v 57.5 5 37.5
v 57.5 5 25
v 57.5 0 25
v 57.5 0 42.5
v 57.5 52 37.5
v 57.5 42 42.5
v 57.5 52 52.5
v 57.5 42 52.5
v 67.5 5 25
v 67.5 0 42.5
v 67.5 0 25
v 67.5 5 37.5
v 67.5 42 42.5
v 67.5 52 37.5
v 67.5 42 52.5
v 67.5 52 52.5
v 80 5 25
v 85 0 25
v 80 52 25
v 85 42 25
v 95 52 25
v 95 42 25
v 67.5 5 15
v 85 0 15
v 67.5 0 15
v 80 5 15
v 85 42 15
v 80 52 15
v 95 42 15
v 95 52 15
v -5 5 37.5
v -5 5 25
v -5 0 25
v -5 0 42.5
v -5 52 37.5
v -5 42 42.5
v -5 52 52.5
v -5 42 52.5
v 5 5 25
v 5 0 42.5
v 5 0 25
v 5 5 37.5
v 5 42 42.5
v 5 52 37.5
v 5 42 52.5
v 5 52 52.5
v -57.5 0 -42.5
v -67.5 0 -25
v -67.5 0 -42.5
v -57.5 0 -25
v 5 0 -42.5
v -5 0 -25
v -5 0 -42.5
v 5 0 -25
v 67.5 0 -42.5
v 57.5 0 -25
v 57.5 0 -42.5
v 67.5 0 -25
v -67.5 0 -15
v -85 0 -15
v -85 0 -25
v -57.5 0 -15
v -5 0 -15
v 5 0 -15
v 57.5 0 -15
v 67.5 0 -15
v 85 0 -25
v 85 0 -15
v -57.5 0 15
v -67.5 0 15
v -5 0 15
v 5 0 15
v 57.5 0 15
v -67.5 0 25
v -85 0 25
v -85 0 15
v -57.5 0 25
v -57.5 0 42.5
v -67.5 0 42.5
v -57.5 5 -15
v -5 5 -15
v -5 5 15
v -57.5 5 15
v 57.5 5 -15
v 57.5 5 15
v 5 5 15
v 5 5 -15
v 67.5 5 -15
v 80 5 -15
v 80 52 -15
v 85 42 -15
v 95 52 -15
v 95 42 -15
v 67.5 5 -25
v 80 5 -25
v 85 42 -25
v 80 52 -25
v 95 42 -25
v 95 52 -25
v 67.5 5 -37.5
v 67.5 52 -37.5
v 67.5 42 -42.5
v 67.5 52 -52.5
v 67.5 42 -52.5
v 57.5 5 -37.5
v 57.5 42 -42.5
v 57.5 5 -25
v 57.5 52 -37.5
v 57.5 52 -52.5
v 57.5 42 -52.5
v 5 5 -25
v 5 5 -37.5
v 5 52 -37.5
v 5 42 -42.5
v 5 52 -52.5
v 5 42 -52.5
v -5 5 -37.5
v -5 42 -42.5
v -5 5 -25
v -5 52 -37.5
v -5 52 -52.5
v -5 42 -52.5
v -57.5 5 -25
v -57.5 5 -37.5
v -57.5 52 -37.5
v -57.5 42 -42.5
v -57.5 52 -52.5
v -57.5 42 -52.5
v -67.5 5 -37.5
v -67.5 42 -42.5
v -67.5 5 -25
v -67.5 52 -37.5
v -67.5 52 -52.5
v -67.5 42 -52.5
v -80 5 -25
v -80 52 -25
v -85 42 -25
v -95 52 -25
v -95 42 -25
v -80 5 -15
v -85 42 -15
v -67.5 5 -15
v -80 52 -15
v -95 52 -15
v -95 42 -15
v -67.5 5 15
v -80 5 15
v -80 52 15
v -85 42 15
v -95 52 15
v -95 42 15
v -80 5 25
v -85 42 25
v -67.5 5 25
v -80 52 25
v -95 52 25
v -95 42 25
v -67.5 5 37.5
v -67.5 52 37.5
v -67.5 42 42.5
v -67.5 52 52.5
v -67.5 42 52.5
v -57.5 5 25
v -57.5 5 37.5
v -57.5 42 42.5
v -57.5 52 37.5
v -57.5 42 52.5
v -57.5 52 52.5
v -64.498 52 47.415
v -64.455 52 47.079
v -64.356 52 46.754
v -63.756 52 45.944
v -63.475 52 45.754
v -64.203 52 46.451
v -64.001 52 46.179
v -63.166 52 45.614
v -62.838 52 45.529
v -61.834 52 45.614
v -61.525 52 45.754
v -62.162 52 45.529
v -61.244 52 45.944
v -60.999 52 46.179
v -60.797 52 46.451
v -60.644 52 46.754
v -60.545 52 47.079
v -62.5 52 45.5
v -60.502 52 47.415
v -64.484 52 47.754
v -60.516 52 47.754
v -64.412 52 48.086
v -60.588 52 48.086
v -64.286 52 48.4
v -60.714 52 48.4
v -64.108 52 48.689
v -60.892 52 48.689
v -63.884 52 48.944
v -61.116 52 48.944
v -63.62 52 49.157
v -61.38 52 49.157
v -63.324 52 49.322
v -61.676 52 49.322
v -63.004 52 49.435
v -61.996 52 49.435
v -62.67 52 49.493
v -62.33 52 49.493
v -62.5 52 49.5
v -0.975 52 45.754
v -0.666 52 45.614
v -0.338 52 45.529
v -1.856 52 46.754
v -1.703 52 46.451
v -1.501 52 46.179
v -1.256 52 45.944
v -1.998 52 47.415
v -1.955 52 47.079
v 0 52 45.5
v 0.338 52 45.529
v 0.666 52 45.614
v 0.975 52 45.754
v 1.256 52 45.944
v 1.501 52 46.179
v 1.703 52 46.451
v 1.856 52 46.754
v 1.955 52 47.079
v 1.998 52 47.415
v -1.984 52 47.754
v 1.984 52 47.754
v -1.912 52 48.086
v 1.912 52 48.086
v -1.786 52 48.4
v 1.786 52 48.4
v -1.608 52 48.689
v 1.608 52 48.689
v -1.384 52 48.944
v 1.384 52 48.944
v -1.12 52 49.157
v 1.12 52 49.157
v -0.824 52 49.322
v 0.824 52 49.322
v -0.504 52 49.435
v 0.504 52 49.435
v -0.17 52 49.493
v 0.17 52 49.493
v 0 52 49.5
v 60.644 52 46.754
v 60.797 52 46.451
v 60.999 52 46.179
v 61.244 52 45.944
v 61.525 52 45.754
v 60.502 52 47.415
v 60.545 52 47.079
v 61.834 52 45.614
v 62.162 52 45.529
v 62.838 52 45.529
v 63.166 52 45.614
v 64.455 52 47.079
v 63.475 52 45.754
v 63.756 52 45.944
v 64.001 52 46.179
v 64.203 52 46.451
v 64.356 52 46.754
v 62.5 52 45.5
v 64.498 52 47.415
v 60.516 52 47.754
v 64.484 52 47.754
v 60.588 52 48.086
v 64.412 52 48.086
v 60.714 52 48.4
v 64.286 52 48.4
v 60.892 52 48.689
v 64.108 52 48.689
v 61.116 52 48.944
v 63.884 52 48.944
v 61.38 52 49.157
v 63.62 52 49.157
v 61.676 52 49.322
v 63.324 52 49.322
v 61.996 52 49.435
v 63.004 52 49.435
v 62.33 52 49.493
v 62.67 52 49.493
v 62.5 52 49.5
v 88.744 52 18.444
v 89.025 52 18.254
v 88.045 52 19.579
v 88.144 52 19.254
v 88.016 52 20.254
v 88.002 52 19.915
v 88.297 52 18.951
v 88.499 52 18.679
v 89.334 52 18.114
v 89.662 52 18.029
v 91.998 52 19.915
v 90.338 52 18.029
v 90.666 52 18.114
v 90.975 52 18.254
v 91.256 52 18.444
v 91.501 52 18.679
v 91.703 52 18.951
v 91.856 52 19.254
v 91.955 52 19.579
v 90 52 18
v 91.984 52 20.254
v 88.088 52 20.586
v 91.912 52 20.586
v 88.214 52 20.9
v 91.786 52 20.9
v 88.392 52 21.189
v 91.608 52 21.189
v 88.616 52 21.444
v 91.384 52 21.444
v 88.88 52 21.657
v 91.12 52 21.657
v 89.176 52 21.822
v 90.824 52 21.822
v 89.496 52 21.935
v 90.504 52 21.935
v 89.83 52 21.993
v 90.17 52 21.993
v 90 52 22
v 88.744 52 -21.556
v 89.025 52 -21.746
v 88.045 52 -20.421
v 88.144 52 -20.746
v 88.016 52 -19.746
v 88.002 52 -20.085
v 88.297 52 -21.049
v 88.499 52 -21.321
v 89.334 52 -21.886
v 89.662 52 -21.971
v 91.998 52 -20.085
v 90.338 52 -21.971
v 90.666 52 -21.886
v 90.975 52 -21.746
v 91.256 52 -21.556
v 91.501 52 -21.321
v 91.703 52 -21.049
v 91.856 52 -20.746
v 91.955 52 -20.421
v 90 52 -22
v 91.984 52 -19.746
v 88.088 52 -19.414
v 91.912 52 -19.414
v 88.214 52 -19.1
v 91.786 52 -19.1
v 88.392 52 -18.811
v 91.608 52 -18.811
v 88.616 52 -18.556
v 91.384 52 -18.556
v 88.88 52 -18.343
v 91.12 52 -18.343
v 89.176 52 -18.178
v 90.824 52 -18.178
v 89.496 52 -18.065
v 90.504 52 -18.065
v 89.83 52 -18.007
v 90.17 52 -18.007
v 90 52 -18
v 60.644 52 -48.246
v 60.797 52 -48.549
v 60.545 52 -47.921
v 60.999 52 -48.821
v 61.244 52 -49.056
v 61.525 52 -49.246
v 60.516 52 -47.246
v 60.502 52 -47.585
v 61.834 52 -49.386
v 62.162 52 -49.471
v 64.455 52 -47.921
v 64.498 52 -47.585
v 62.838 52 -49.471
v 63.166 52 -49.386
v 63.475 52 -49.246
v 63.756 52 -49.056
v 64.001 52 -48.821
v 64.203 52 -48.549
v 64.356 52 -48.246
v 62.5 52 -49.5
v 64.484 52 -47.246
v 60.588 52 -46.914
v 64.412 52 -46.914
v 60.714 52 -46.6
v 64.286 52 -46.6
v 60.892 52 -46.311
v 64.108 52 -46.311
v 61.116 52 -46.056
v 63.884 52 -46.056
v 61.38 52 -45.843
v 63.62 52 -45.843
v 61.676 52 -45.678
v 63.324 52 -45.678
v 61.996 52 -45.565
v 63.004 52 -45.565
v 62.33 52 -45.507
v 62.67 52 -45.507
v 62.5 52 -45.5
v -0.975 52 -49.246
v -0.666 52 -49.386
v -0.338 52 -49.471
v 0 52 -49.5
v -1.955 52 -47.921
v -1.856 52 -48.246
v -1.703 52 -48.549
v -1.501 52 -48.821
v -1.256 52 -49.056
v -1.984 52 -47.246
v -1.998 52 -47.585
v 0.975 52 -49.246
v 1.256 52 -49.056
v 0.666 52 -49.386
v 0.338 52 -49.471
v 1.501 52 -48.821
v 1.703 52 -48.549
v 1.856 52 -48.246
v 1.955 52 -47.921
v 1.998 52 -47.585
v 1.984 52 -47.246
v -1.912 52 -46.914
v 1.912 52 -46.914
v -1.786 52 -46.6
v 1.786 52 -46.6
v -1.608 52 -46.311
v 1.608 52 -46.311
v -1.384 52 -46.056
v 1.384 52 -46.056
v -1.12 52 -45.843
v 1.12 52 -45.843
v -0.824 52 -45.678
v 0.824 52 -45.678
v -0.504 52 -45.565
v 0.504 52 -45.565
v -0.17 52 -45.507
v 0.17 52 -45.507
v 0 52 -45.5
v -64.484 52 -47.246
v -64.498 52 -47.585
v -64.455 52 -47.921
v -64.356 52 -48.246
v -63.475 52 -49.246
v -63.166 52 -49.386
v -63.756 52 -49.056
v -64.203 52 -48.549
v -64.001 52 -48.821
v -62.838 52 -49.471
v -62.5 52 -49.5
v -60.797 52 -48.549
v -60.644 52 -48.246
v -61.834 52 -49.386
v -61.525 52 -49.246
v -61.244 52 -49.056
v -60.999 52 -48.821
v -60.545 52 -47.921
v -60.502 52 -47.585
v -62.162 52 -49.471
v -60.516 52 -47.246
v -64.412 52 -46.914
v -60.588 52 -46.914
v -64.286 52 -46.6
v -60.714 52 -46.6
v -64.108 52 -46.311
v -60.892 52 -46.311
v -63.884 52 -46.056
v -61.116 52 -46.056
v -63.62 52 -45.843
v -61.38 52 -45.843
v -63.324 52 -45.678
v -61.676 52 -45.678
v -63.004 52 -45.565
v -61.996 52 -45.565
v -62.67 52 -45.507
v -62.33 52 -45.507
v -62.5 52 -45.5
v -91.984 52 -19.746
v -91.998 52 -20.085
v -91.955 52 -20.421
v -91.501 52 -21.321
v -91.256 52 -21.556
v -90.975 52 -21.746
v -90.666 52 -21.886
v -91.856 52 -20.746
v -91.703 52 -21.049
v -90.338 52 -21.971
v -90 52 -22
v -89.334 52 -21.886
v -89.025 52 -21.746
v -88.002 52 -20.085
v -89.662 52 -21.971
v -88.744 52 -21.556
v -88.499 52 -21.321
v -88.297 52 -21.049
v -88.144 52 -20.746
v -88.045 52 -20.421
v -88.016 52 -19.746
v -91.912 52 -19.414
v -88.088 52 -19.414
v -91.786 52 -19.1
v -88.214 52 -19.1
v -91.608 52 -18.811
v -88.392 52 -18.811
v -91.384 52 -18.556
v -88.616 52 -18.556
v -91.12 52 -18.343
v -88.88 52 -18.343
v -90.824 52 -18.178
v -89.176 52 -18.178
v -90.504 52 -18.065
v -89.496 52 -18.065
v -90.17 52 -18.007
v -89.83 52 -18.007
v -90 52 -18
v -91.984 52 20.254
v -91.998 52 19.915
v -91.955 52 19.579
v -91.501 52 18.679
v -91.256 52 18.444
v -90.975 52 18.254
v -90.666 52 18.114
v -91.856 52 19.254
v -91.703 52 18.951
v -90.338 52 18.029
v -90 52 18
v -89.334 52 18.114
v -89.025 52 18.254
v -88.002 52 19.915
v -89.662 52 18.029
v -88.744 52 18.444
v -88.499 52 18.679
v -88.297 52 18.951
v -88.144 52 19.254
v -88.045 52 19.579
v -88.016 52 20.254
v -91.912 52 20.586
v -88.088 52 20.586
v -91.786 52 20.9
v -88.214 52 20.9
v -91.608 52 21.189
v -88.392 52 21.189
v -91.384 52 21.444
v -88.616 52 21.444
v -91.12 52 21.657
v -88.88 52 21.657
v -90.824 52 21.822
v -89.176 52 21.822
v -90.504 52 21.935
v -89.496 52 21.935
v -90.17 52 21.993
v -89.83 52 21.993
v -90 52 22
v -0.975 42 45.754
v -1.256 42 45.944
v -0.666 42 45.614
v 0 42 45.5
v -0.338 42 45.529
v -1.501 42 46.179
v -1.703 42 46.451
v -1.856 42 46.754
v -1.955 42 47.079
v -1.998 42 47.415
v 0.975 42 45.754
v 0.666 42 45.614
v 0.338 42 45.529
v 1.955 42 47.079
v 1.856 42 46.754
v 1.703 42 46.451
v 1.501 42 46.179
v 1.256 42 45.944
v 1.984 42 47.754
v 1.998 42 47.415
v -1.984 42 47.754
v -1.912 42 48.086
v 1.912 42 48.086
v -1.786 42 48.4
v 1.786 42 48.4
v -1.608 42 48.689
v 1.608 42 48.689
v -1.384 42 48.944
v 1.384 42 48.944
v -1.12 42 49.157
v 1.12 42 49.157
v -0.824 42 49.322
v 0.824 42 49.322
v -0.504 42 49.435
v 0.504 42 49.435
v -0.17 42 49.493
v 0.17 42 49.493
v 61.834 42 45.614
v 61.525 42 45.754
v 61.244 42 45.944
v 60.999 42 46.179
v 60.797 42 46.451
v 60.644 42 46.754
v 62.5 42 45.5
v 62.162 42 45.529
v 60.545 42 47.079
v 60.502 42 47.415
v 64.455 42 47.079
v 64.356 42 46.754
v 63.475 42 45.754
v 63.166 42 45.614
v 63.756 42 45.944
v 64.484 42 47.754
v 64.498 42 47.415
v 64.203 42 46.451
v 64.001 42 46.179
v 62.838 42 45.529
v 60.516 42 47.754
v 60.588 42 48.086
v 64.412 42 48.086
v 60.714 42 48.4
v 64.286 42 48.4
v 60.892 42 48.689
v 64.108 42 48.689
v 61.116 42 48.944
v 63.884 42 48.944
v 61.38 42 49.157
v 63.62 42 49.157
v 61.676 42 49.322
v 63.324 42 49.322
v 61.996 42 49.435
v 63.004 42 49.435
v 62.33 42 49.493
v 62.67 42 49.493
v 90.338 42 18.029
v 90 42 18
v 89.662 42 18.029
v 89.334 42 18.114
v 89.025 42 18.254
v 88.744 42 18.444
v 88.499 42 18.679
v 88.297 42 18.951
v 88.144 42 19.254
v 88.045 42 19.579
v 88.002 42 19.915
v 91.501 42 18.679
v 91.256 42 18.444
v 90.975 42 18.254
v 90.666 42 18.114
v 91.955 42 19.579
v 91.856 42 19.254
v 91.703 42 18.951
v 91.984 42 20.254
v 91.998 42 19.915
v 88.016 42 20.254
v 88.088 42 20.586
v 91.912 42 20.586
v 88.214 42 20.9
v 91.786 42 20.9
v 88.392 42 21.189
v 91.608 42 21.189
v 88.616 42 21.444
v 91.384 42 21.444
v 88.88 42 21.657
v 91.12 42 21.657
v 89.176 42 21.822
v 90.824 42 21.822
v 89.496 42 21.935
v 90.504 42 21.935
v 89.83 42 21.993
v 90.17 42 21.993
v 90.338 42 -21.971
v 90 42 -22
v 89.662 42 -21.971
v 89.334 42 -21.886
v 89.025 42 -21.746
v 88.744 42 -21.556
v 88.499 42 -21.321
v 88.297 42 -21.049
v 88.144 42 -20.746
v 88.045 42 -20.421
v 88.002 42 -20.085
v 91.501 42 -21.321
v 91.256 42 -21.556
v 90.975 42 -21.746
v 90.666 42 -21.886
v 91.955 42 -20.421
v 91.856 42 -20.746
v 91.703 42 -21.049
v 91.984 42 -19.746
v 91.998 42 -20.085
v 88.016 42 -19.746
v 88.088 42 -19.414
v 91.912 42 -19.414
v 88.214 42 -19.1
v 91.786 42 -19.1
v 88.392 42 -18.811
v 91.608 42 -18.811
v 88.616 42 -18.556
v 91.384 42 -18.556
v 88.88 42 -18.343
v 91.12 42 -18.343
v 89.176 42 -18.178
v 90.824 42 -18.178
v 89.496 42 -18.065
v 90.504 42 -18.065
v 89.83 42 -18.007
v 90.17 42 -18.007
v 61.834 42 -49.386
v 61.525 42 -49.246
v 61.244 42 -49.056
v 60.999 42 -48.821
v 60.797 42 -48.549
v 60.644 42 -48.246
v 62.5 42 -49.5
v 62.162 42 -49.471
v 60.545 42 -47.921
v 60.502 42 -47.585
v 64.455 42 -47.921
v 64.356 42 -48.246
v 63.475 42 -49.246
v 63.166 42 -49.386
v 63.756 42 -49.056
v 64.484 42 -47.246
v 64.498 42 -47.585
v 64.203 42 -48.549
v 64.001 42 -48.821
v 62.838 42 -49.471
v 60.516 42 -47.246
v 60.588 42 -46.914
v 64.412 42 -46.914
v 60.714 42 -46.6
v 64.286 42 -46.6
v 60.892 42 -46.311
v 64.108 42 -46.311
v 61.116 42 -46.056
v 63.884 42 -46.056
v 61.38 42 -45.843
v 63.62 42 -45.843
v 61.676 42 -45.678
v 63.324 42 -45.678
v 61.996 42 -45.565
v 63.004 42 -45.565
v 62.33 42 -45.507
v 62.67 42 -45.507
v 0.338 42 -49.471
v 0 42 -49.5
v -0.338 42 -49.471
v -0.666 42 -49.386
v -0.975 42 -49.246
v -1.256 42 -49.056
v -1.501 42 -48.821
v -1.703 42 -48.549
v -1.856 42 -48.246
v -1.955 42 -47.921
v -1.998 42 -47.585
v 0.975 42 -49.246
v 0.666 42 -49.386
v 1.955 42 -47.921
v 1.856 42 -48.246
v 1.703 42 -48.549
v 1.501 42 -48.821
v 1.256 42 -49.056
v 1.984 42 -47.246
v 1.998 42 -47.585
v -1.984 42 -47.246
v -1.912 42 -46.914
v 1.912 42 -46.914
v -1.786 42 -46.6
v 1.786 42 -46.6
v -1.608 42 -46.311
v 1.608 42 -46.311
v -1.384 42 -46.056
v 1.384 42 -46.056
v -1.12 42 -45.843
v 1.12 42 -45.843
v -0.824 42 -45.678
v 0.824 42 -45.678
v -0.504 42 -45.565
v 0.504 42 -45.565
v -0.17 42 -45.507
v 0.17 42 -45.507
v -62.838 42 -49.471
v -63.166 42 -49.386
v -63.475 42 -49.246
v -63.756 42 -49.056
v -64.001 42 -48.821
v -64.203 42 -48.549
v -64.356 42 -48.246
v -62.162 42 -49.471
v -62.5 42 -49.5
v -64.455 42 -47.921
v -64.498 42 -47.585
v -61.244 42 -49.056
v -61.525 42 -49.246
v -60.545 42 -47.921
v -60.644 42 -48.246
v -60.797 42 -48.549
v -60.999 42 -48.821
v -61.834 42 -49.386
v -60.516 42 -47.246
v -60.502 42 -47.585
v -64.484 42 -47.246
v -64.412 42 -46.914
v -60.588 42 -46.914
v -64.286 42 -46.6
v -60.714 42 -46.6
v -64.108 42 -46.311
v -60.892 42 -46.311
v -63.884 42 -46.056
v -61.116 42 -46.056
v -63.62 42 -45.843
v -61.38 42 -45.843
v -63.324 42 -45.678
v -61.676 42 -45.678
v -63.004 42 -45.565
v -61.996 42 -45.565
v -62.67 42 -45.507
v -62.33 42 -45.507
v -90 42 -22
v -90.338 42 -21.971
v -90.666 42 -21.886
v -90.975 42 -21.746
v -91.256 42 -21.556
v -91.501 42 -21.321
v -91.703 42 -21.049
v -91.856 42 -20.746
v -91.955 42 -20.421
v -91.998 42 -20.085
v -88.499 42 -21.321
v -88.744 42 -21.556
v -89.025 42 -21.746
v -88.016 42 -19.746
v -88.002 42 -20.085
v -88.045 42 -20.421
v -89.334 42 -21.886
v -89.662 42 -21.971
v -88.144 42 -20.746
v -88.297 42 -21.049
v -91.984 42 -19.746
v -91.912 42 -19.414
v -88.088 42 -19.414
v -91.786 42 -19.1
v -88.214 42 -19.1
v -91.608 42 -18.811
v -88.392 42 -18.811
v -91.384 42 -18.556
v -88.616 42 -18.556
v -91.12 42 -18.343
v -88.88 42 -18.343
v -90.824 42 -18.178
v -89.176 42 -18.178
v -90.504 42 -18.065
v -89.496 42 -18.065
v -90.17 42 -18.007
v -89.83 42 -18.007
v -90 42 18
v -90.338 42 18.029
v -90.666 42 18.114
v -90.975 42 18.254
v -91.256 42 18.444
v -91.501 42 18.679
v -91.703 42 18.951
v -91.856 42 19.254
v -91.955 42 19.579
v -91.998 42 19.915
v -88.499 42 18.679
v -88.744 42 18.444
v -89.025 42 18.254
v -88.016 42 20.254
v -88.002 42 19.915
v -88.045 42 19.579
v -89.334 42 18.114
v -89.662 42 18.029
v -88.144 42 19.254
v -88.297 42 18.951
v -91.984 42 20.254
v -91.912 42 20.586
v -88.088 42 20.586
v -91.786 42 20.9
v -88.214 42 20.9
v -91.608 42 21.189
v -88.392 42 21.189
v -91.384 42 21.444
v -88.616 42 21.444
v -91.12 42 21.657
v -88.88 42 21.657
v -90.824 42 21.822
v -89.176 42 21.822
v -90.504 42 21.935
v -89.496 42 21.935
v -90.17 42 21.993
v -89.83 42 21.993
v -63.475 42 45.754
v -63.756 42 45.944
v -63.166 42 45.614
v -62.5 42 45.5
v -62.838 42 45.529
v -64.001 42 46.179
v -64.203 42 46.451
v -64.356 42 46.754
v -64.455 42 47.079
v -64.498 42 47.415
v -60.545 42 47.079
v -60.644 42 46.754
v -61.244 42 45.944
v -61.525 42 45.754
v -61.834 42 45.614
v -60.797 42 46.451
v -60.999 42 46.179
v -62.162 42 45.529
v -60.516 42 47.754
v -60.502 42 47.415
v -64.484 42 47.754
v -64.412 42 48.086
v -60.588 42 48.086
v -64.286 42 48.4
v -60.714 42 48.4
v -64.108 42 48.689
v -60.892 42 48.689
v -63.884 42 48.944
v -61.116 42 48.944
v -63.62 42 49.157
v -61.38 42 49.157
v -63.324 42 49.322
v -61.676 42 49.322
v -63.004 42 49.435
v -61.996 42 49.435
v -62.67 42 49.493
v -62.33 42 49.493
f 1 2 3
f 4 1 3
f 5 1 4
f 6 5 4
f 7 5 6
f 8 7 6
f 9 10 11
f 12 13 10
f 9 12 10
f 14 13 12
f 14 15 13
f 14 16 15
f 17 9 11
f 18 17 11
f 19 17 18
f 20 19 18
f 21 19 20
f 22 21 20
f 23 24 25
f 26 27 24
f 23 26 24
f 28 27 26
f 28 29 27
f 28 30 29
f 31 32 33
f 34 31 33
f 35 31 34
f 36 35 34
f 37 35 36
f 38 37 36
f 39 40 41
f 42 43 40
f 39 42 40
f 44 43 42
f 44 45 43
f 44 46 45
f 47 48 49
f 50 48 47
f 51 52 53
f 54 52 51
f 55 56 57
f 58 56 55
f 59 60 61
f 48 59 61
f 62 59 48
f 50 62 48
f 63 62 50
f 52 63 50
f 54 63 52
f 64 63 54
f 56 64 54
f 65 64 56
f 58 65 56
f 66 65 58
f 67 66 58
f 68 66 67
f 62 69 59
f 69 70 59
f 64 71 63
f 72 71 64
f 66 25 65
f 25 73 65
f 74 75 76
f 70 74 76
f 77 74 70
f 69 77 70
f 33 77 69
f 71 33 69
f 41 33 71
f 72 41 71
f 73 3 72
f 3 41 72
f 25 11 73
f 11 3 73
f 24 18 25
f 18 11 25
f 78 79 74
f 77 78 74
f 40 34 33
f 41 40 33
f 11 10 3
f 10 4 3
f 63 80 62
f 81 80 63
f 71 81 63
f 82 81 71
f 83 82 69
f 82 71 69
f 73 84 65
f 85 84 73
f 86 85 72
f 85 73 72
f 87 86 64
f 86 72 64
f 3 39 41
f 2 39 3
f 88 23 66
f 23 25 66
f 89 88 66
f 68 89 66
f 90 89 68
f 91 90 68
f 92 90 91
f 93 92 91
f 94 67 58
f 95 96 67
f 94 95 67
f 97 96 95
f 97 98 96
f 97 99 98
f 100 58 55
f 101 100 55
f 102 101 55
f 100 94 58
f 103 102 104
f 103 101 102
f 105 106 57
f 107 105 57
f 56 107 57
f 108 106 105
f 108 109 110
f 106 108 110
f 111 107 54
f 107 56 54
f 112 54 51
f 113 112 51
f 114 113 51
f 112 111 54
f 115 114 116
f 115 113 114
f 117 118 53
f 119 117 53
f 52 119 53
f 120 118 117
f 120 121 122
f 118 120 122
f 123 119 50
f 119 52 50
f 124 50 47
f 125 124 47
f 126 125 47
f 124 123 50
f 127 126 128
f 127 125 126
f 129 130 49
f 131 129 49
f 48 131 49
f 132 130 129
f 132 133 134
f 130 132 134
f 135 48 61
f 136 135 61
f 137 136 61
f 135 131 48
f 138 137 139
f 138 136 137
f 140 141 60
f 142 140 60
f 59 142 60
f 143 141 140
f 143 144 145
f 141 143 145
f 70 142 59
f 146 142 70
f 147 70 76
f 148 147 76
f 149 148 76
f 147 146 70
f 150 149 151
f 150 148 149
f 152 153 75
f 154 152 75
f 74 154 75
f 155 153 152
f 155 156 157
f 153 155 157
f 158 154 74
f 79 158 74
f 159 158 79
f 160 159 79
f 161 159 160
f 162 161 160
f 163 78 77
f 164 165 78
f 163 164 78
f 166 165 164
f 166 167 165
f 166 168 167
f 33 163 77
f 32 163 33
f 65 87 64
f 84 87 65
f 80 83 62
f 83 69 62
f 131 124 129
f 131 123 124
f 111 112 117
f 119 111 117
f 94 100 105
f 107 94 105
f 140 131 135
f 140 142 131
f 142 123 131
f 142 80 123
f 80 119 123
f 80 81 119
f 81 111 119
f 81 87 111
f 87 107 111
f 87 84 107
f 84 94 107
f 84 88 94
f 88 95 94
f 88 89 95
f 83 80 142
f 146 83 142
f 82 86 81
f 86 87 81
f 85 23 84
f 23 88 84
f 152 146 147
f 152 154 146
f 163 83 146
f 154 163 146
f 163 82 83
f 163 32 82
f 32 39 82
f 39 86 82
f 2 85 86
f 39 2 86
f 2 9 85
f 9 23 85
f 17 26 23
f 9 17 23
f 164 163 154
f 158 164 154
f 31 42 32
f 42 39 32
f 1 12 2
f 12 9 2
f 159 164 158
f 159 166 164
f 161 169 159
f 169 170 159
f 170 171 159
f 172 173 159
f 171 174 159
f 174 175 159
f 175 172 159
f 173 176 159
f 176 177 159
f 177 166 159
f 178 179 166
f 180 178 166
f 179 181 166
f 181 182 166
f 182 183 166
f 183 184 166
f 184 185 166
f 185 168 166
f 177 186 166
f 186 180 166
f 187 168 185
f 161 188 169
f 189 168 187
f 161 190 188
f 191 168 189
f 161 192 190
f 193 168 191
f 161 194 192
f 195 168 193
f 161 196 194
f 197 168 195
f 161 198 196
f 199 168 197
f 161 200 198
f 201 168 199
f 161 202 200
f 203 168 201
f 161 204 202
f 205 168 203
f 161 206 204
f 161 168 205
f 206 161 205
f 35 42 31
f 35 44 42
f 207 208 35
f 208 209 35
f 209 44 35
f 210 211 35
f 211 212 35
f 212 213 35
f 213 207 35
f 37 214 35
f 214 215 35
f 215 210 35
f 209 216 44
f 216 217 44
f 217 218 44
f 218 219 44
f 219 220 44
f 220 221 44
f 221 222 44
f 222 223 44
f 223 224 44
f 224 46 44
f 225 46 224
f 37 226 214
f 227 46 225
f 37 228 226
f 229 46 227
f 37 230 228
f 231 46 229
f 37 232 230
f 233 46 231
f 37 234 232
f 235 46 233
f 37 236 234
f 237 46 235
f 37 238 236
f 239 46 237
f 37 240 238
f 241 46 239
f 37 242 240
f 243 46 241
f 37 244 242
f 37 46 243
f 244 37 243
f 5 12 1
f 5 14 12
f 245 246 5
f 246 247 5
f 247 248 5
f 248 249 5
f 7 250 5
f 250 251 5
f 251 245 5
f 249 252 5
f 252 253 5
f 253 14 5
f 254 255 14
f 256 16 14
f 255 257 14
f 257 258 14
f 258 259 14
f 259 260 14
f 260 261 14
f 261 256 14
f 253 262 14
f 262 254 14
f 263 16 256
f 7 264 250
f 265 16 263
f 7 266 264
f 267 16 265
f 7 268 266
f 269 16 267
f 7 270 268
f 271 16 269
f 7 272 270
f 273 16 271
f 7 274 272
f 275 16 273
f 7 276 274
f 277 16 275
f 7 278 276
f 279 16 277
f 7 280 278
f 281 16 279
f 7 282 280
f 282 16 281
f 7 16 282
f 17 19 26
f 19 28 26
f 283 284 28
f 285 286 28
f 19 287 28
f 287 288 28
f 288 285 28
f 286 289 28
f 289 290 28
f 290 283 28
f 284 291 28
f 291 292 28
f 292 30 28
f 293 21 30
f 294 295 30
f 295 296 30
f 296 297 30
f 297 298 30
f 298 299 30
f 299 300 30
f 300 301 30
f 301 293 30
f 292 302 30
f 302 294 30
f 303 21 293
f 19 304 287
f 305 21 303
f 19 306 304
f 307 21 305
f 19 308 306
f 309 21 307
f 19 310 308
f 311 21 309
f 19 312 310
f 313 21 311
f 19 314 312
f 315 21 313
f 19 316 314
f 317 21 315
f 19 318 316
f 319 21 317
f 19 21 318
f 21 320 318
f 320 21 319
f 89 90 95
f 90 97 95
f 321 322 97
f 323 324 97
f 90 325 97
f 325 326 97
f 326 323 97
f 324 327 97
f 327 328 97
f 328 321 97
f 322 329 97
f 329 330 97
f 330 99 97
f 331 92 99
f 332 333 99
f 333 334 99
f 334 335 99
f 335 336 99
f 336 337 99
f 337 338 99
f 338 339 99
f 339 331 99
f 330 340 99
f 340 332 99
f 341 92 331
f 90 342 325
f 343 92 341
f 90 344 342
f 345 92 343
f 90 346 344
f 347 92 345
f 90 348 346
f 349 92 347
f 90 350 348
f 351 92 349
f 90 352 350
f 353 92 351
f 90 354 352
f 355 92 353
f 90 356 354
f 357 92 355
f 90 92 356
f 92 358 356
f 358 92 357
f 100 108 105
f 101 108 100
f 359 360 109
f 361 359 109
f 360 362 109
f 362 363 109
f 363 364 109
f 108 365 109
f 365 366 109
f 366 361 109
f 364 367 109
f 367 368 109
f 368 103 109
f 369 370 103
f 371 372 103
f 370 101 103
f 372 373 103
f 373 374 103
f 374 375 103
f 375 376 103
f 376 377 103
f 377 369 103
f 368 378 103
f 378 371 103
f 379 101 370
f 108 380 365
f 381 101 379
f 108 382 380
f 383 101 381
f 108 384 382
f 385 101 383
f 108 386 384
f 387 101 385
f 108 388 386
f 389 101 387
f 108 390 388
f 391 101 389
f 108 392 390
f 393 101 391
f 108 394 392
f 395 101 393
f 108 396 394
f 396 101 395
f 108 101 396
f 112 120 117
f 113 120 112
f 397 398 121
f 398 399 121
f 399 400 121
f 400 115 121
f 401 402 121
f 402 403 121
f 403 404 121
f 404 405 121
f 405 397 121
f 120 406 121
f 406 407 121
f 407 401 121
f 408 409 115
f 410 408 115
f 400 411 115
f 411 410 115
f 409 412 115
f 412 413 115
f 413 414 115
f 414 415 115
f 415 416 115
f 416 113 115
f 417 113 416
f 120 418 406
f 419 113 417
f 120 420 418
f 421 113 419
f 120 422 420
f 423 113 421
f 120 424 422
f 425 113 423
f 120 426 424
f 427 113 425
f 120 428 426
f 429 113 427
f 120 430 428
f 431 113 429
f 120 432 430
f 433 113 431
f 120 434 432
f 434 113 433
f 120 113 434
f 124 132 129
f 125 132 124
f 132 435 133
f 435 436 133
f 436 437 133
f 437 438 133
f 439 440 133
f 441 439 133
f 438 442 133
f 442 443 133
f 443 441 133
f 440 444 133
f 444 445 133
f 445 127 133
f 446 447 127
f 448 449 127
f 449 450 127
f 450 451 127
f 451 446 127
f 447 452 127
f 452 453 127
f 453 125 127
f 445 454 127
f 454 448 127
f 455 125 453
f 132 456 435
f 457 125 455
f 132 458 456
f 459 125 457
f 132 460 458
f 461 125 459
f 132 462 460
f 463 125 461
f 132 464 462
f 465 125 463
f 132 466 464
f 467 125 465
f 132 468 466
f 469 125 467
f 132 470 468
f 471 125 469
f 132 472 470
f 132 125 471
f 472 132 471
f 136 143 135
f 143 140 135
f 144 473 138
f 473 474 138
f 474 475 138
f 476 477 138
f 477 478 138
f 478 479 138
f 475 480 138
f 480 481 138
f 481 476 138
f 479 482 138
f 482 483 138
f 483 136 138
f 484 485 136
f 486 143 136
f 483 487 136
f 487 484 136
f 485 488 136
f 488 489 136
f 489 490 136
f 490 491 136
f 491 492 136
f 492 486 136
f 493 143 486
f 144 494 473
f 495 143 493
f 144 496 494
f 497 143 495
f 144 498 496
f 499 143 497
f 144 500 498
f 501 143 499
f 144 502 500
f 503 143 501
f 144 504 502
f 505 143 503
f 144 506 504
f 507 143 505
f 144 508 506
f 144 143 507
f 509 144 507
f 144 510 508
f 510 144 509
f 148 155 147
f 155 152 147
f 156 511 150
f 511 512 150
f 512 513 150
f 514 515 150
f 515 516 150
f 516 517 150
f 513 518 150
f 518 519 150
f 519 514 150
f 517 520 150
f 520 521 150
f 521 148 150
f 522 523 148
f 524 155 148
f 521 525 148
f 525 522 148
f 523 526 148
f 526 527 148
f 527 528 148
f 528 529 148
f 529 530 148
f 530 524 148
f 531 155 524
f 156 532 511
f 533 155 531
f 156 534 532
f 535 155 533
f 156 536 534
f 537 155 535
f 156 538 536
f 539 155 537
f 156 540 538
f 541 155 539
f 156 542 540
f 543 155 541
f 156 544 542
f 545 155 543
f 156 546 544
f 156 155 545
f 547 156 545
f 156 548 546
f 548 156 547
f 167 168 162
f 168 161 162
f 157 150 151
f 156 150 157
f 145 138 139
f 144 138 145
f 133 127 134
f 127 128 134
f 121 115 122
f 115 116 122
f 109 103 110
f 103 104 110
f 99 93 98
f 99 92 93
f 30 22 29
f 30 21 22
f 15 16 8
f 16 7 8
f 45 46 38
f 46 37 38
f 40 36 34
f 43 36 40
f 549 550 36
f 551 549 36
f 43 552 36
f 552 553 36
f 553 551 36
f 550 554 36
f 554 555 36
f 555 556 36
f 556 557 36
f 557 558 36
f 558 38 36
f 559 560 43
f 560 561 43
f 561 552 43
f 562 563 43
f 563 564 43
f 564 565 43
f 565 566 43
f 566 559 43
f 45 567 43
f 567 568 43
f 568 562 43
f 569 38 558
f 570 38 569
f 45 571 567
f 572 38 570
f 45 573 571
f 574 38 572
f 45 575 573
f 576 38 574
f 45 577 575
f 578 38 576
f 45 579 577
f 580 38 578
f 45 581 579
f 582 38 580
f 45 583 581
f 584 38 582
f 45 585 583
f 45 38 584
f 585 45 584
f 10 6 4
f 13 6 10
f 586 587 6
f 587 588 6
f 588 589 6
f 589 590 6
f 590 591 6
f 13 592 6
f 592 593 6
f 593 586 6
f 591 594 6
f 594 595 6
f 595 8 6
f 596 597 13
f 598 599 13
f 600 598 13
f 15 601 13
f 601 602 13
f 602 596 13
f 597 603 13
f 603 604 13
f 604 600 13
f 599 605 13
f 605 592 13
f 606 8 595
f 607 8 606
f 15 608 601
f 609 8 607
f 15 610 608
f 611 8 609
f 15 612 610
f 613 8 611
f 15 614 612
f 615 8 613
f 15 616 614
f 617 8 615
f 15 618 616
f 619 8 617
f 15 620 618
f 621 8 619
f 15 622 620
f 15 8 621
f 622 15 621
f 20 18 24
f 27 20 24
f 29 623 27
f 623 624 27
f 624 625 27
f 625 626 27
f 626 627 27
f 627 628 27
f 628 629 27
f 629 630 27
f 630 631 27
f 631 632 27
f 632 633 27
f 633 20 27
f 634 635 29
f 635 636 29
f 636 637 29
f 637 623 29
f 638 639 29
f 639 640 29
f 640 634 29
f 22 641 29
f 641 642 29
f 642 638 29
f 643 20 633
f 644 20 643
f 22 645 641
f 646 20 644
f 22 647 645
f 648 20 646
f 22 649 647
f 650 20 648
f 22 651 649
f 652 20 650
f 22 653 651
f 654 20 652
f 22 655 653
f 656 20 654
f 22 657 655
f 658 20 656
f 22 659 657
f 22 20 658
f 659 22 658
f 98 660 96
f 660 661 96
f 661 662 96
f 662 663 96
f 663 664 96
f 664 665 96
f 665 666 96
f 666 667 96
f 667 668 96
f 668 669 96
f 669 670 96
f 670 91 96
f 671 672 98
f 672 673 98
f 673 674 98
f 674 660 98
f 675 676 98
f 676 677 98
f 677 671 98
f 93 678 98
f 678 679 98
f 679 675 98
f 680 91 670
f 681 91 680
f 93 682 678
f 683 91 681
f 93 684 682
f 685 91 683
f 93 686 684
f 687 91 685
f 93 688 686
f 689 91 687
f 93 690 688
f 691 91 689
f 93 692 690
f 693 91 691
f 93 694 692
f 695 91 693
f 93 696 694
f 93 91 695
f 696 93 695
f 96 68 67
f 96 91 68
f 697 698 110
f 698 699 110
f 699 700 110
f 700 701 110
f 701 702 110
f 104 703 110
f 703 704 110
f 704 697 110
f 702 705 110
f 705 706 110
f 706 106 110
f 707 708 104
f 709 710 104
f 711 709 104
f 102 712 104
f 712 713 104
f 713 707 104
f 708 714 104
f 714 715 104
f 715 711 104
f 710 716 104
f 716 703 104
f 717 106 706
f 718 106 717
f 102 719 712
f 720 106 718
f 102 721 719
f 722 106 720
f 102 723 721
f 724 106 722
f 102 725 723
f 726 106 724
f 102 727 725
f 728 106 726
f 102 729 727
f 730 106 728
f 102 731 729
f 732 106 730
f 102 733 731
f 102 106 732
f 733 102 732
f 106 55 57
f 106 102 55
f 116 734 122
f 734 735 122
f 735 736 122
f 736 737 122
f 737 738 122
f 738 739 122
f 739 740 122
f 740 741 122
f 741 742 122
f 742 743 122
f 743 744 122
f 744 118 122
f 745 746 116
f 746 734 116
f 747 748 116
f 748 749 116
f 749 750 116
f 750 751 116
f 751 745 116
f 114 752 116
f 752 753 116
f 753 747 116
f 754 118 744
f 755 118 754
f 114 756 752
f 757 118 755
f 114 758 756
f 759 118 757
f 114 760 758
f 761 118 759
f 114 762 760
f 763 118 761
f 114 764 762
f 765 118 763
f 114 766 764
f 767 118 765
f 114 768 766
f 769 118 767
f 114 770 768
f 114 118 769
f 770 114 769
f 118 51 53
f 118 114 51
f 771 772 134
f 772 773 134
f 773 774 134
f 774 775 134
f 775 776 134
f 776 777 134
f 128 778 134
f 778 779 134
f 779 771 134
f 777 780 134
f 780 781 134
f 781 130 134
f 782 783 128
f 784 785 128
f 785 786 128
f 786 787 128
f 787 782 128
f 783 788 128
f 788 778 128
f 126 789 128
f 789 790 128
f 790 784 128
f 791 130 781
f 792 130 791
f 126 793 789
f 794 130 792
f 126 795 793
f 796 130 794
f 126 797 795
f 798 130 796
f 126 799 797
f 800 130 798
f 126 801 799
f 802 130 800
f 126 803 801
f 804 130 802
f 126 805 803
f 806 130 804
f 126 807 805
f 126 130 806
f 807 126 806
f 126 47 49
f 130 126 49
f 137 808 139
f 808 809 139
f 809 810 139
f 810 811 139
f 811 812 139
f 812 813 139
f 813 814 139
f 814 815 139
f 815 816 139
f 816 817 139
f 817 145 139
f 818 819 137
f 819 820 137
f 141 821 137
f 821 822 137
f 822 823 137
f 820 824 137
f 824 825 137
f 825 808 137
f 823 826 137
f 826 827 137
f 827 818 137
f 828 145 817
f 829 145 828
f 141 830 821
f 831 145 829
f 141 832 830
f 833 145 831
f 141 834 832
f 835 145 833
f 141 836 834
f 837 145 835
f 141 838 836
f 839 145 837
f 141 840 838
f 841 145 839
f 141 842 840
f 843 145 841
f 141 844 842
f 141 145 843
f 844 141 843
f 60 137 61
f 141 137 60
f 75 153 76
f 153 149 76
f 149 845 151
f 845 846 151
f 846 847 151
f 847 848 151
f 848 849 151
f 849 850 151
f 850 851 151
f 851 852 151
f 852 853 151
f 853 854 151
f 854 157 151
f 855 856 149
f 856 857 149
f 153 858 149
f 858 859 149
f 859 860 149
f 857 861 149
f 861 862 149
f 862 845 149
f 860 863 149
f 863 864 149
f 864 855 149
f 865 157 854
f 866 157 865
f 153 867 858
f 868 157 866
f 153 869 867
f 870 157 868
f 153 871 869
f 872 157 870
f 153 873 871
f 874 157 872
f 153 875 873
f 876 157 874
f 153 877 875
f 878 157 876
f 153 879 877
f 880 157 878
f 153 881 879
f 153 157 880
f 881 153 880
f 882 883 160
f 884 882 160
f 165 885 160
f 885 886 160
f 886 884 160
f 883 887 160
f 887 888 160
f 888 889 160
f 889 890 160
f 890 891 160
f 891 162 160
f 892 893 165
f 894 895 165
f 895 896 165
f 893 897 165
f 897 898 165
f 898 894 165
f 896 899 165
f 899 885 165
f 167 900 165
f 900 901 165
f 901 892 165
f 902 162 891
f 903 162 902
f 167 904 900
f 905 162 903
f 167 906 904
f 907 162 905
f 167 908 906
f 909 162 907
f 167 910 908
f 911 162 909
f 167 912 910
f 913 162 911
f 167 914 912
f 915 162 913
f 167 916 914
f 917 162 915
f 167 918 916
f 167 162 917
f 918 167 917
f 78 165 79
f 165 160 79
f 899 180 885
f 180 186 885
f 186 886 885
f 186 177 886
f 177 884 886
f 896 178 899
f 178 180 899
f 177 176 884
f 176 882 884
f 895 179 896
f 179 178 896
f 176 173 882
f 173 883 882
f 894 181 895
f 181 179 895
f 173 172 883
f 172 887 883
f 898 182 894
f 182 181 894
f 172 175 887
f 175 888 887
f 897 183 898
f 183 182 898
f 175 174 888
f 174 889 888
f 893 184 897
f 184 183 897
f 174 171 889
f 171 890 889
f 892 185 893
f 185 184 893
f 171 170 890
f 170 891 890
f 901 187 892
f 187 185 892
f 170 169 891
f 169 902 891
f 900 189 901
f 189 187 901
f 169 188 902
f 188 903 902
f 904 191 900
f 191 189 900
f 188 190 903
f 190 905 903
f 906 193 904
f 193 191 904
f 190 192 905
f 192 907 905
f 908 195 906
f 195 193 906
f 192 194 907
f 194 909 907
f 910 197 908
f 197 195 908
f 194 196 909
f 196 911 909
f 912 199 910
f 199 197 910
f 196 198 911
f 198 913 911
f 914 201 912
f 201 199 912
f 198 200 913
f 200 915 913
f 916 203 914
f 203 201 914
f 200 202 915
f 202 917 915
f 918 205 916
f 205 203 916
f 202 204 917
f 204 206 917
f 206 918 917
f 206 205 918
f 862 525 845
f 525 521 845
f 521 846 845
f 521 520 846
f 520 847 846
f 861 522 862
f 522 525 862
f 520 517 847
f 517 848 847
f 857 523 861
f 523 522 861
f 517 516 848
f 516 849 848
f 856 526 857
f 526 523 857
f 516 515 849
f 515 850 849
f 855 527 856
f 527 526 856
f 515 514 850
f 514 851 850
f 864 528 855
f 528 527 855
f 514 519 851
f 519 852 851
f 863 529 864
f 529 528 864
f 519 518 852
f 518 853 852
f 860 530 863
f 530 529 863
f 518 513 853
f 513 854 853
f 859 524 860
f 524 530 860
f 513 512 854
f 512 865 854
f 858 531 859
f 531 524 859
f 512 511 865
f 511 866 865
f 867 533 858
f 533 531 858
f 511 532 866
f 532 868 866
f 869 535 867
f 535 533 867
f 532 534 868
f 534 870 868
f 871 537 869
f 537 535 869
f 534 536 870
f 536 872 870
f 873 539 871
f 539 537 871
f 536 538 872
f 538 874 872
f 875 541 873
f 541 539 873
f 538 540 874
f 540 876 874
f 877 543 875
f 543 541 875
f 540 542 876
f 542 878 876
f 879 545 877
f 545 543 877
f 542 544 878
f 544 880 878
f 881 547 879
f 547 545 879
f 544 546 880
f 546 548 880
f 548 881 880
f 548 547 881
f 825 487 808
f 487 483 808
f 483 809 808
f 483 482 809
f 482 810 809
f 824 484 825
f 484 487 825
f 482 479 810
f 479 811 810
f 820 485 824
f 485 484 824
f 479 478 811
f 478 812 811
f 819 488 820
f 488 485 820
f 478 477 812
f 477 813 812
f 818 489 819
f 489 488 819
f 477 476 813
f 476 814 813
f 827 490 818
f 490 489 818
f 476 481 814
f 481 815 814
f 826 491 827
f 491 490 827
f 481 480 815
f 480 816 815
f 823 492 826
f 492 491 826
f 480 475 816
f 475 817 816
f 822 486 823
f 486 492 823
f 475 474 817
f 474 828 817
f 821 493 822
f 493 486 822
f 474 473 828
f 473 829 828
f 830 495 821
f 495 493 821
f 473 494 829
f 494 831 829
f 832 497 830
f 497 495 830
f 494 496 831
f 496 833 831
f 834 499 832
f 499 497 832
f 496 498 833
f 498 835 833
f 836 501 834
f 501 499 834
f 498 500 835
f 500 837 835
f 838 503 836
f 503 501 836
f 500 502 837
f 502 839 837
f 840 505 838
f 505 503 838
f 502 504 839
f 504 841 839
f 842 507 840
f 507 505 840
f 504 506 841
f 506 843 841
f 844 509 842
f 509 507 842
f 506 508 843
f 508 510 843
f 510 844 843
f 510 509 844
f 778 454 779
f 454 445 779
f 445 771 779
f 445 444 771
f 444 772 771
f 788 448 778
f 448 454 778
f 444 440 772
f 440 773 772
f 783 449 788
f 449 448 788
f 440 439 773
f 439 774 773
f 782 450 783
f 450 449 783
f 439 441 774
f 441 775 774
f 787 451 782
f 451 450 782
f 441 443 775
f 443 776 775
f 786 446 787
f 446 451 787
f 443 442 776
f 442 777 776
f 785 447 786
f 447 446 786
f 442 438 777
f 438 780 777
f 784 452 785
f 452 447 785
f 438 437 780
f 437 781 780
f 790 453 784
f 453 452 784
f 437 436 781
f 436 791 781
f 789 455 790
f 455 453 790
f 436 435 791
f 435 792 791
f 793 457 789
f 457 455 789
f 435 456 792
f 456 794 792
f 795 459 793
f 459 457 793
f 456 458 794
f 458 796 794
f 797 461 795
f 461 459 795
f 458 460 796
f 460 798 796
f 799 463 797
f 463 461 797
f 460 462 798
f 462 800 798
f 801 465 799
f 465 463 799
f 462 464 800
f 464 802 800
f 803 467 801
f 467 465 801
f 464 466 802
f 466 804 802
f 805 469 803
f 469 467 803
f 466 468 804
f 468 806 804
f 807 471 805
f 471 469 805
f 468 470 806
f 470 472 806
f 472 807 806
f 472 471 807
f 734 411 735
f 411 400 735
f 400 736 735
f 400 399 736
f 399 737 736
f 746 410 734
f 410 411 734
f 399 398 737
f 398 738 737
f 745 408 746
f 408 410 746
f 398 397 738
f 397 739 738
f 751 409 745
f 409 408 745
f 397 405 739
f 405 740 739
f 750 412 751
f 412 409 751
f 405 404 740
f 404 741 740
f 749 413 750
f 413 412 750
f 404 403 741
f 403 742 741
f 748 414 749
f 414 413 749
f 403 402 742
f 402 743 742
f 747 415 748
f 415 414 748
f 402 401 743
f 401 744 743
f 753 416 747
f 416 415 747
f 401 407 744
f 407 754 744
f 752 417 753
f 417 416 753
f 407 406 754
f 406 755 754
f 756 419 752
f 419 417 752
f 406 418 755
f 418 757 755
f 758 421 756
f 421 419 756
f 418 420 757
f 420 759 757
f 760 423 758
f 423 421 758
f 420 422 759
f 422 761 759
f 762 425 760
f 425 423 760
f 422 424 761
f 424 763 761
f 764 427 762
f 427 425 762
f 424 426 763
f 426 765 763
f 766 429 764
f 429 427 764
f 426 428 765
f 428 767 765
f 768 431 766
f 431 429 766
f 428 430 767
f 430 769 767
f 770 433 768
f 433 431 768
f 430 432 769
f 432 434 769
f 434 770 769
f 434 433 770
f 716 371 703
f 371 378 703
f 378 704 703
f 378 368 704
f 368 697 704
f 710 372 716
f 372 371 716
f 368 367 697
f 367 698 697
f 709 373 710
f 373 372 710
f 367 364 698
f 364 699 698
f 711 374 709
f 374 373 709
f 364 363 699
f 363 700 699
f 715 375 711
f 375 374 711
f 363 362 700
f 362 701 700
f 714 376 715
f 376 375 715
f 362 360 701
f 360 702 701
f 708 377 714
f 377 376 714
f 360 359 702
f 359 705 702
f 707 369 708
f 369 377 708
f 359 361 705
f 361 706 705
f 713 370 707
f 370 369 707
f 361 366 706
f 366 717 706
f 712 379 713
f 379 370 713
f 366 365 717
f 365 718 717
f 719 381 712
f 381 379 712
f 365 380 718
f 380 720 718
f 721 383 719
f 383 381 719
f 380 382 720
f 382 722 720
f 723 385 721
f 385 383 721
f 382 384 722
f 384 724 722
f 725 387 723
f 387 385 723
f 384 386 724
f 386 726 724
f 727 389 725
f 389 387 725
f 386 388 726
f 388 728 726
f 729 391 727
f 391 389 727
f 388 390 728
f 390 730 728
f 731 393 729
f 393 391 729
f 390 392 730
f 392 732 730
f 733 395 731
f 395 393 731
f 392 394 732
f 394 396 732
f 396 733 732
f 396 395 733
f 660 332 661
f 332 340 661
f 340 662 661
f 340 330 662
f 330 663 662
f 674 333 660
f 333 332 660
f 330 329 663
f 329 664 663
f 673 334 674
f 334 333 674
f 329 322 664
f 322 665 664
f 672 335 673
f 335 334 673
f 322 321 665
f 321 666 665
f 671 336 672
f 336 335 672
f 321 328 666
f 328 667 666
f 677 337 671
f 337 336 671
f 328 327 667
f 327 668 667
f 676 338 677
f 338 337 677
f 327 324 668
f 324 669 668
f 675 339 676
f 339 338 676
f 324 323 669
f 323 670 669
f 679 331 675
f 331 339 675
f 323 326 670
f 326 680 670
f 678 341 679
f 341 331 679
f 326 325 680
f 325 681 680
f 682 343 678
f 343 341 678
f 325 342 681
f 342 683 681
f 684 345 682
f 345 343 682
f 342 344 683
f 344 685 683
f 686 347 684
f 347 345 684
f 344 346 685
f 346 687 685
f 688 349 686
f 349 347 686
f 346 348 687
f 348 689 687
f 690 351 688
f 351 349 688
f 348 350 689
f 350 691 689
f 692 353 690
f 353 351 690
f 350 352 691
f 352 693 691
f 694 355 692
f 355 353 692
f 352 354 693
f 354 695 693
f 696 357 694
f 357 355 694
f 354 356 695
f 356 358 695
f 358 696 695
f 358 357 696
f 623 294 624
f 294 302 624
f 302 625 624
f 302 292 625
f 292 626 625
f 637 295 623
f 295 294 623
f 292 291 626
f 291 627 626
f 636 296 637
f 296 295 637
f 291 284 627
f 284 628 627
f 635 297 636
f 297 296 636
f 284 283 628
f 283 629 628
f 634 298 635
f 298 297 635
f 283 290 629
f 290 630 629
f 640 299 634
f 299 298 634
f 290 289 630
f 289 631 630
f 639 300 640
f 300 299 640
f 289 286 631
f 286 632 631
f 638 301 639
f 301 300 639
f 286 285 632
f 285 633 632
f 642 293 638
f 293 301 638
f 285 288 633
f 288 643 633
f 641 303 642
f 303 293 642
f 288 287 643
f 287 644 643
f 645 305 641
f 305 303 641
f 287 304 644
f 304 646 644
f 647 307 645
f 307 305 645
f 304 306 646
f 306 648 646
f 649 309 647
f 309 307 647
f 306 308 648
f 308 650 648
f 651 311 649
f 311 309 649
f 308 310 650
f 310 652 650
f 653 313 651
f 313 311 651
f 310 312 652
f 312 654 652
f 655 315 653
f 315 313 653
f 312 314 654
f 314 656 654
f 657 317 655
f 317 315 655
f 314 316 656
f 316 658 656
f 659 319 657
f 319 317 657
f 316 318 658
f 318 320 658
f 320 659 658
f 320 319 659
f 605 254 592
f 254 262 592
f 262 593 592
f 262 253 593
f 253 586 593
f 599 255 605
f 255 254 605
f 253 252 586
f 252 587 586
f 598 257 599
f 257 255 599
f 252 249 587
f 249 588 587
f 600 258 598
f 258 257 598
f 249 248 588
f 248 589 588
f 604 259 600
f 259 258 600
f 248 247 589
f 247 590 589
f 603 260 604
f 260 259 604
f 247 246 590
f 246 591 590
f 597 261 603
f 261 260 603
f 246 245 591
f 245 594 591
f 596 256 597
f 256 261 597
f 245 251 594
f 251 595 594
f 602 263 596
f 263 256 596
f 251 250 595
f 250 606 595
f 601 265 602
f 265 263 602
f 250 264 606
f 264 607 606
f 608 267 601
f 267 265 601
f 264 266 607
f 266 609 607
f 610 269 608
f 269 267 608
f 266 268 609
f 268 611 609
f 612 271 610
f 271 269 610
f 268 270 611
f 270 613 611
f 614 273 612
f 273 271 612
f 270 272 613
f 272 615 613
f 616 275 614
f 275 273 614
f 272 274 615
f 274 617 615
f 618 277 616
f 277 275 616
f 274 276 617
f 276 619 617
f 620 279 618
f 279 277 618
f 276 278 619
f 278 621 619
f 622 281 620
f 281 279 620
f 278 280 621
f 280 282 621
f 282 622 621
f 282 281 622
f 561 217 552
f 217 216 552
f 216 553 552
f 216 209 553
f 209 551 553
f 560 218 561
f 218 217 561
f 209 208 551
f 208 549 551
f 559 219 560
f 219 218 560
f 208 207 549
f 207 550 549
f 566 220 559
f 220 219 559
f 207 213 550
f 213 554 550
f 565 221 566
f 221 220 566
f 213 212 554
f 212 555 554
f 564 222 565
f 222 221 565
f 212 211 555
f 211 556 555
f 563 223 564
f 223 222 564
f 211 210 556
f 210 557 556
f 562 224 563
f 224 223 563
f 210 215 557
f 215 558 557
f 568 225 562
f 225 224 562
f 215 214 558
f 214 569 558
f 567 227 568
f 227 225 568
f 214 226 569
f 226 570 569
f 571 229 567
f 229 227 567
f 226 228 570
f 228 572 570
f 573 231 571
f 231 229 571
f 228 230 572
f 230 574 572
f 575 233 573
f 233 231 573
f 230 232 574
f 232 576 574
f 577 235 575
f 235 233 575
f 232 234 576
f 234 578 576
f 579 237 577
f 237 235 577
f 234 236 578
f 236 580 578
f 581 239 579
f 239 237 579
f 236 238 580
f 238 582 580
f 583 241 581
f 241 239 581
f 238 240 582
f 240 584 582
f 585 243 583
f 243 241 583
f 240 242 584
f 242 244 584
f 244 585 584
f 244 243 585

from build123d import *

# Parameters (mm, degrees)
SKETCH2_W           = 52.5
SKETCH2_H           = 10
SKETCH2_W_2         = 10
SKETCH2_H_2         = 30
SKETCH2_H_3         = 12.5
SKETCH2_W_3         = 12.5
BOSS_EXTRUDE1_DEPTH = 5
SKETCH2_4_W         = 10
SKETCH2_4_H         = 5
SKETCH2_4_W_2       = 5
SKETCH2_4_H_2       = 10
BOSS_EXTRUDE2_DEPTH = 52
SKETCH2_5_W         = 10
SKETCH2_5_H         = 10
BOSS_EXTRUDE3_DEPTH = 52
SKETCH2_6_W         = 10
SKETCH2_6_H         = 10
CUT_EXTRUDE1_DEPTH  = 42
SKETCH3_R           = 2
CUT_EXTRUDE2_DEPTH  = 10


with BuildPart() as part:
    # Sketch2 → Boss-Extrude1 (new body)
    with BuildSketch(Plane(origin=(0, 0, 0), x_dir=(1, 0, 0), z_dir=(0, 1, 0))):
        with Locations((-31.25, 20)):
            Rectangle(SKETCH2_W, SKETCH2_H)
        with Locations((-62.5, 20)):
            Rectangle(SKETCH2_W_2, SKETCH2_H)
        with Locations((-62.5, 0)):
            Rectangle(SKETCH2_W_2, SKETCH2_H_2)
        Rectangle(SKETCH2_W_2, SKETCH2_H_2)
        with Locations((0, 20)):
            Rectangle(SKETCH2_W_2, SKETCH2_H)
        with Locations((-31.25, -20)):
            Rectangle(SKETCH2_W, SKETCH2_H)
        with Locations((0, -20)):
            Rectangle(SKETCH2_W_2, SKETCH2_H)
        with Locations((-62.5, -20)):
            Rectangle(SKETCH2_W_2, SKETCH2_H)
        with Locations((31.25, -20)):
            Rectangle(SKETCH2_W, SKETCH2_H)
        with Locations((31.25, 20)):
            Rectangle(SKETCH2_W, SKETCH2_H)
        with Locations((62.5, 0)):
            Rectangle(SKETCH2_W_2, SKETCH2_H_2)
        with Locations((62.5, 20)):
            Rectangle(SKETCH2_W_2, SKETCH2_H)
        with Locations((62.5, -20)):
            Rectangle(SKETCH2_W_2, SKETCH2_H)
        with Locations((0, -31.25)):
            Rectangle(SKETCH2_W_2, SKETCH2_H_3)
        with Locations((62.5, -31.25)):
            Rectangle(SKETCH2_W_2, SKETCH2_H_3)
        with Locations((73.75, -20)):
            Rectangle(SKETCH2_W_3, SKETCH2_H)
        with Locations((73.75, 20)):
            Rectangle(SKETCH2_W_3, SKETCH2_H)
        with Locations((0, 31.25)):
            Rectangle(SKETCH2_W_2, SKETCH2_H_3)
        with Locations((62.5, 31.25)):
            Rectangle(SKETCH2_W_2, SKETCH2_H_3)
        with Locations((-62.5, 31.25)):
            Rectangle(SKETCH2_W_2, SKETCH2_H_3)
        with Locations((-73.75, 20)):
            Rectangle(SKETCH2_W_3, SKETCH2_H)
        with Locations((-73.75, -20)):
            Rectangle(SKETCH2_W_3, SKETCH2_H)
        with Locations((-62.5, -31.25)):
            Rectangle(SKETCH2_W_2, SKETCH2_H_3)
    extrude(amount=BOSS_EXTRUDE1_DEPTH)

    # Sketch2<4> → Boss-Extrude2 (add)
    with BuildSketch(Plane(origin=(0, 0, 0), x_dir=(1, 0, 0), z_dir=(0, 1, 0))):
        with Locations((-62.5, -40)):
            Rectangle(SKETCH2_4_W, SKETCH2_4_H)
        with Locations((0, -40)):
            Rectangle(SKETCH2_4_W, SKETCH2_4_H)
        with Locations((62.5, -40)):
            Rectangle(SKETCH2_4_W, SKETCH2_4_H)
        with Locations((82.5, -20)):
            Rectangle(SKETCH2_4_W_2, SKETCH2_4_H_2)
        with Locations((82.5, 20)):
            Rectangle(SKETCH2_4_W_2, SKETCH2_4_H_2)
        with Locations((62.5, 40)):
            Rectangle(SKETCH2_4_W, SKETCH2_4_H)
        with Locations((0, 40)):
            Rectangle(SKETCH2_4_W, SKETCH2_4_H)
        with Locations((-62.5, 40)):
            Rectangle(SKETCH2_4_W, SKETCH2_4_H)
        with Locations((-82.5, 20)):
            Rectangle(SKETCH2_4_W_2, SKETCH2_4_H_2)
        with Locations((-82.5, -20)):
            Rectangle(SKETCH2_4_W_2, SKETCH2_4_H_2)
    extrude(amount=BOSS_EXTRUDE2_DEPTH)

    # Sketch2<5> → Boss-Extrude3 (add)
    with BuildSketch(Plane(origin=(0, 0, 0), x_dir=(1, 0, 0), z_dir=(0, 1, 0))):
        with Locations((-62.5, -47.5)):
            Rectangle(SKETCH2_5_W, SKETCH2_5_H)
        with Locations((-90, -20)):
            Rectangle(SKETCH2_5_W, SKETCH2_5_H)
        with Locations((-90, 20)):
            Rectangle(SKETCH2_5_W, SKETCH2_5_H)
        with Locations((-62.5, 47.5)):
            Rectangle(SKETCH2_5_W, SKETCH2_5_H)
        with Locations((0, 47.5)):
            Rectangle(SKETCH2_5_W, SKETCH2_5_H)
        with Locations((62.5, 47.5)):
            Rectangle(SKETCH2_5_W, SKETCH2_5_H)
        with Locations((90, 20)):
            Rectangle(SKETCH2_5_W, SKETCH2_5_H)
        with Locations((90, -20)):
            Rectangle(SKETCH2_5_W, SKETCH2_5_H)
        with Locations((62.5, -47.5)):
            Rectangle(SKETCH2_5_W, SKETCH2_5_H)
        with Locations((0, -47.5)):
            Rectangle(SKETCH2_5_W, SKETCH2_5_H)
    extrude(amount=BOSS_EXTRUDE3_DEPTH)

    # Sketch2<6> → Cut-Extrude1 (cut)
    with BuildSketch(Plane(origin=(0, 0, 0), x_dir=(1, 0, 0), z_dir=(0, 1, 0))):
        with Locations((-62.5, -47.5)):
            Rectangle(SKETCH2_6_W, SKETCH2_6_H)
        with Locations((-90, -20)):
            Rectangle(SKETCH2_6_W, SKETCH2_6_H)
        with Locations((-90, 20)):
            Rectangle(SKETCH2_6_W, SKETCH2_6_H)
        with Locations((-62.5, 47.5)):
            Rectangle(SKETCH2_6_W, SKETCH2_6_H)
        with Locations((0, 47.5)):
            Rectangle(SKETCH2_6_W, SKETCH2_6_H)
        with Locations((62.5, 47.5)):
            Rectangle(SKETCH2_6_W, SKETCH2_6_H)
        with Locations((90, 20)):
            Rectangle(SKETCH2_6_W, SKETCH2_6_H)
        with Locations((90, -20)):
            Rectangle(SKETCH2_6_W, SKETCH2_6_H)
        with Locations((62.5, -47.5)):
            Rectangle(SKETCH2_6_W, SKETCH2_6_H)
        with Locations((0, -47.5)):
            Rectangle(SKETCH2_6_W, SKETCH2_6_H)
    extrude(amount=CUT_EXTRUDE1_DEPTH, mode=Mode.SUBTRACT)

    # Sketch3 → Cut-Extrude2 (cut)
    with BuildSketch(Plane.XZ.offset(-42)):
        with Locations(Location((-62.5, -47.5, 0), (0, 0, 270))):
            Circle(SKETCH3_R)
        with Locations(Location((-90, -20, 0), (0, 0, 270))):
            Circle(SKETCH3_R)
        with Locations(Location((0, -47.5, 0), (0, 0, 270))):
            Circle(SKETCH3_R)
        with Locations(Location((62.5, -47.5, 0), (0, 0, 270))):
            Circle(SKETCH3_R)
        with Locations(Location((90, -20, 0), (0, 0, 270))):
            Circle(SKETCH3_R)
        with Locations(Location((90, 20, 0), (0, 0, 270))):
            Circle(SKETCH3_R)
        with Locations(Location((62.5, 47.5, 0), (0, 0, 270))):
            Circle(SKETCH3_R)
        with Locations(Location((0, 47.5, 0), (0, 0, 270))):
            Circle(SKETCH3_R)
        with Locations(Location((-90, 20, 0), (0, 0, 270))):
            Circle(SKETCH3_R)
        with Locations(Location((-62.5, 47.5, 0), (0, 0, 270))):
            Circle(SKETCH3_R)
    extrude(amount=-CUT_EXTRUDE2_DEPTH, mode=Mode.SUBTRACT)


solid = part.part
